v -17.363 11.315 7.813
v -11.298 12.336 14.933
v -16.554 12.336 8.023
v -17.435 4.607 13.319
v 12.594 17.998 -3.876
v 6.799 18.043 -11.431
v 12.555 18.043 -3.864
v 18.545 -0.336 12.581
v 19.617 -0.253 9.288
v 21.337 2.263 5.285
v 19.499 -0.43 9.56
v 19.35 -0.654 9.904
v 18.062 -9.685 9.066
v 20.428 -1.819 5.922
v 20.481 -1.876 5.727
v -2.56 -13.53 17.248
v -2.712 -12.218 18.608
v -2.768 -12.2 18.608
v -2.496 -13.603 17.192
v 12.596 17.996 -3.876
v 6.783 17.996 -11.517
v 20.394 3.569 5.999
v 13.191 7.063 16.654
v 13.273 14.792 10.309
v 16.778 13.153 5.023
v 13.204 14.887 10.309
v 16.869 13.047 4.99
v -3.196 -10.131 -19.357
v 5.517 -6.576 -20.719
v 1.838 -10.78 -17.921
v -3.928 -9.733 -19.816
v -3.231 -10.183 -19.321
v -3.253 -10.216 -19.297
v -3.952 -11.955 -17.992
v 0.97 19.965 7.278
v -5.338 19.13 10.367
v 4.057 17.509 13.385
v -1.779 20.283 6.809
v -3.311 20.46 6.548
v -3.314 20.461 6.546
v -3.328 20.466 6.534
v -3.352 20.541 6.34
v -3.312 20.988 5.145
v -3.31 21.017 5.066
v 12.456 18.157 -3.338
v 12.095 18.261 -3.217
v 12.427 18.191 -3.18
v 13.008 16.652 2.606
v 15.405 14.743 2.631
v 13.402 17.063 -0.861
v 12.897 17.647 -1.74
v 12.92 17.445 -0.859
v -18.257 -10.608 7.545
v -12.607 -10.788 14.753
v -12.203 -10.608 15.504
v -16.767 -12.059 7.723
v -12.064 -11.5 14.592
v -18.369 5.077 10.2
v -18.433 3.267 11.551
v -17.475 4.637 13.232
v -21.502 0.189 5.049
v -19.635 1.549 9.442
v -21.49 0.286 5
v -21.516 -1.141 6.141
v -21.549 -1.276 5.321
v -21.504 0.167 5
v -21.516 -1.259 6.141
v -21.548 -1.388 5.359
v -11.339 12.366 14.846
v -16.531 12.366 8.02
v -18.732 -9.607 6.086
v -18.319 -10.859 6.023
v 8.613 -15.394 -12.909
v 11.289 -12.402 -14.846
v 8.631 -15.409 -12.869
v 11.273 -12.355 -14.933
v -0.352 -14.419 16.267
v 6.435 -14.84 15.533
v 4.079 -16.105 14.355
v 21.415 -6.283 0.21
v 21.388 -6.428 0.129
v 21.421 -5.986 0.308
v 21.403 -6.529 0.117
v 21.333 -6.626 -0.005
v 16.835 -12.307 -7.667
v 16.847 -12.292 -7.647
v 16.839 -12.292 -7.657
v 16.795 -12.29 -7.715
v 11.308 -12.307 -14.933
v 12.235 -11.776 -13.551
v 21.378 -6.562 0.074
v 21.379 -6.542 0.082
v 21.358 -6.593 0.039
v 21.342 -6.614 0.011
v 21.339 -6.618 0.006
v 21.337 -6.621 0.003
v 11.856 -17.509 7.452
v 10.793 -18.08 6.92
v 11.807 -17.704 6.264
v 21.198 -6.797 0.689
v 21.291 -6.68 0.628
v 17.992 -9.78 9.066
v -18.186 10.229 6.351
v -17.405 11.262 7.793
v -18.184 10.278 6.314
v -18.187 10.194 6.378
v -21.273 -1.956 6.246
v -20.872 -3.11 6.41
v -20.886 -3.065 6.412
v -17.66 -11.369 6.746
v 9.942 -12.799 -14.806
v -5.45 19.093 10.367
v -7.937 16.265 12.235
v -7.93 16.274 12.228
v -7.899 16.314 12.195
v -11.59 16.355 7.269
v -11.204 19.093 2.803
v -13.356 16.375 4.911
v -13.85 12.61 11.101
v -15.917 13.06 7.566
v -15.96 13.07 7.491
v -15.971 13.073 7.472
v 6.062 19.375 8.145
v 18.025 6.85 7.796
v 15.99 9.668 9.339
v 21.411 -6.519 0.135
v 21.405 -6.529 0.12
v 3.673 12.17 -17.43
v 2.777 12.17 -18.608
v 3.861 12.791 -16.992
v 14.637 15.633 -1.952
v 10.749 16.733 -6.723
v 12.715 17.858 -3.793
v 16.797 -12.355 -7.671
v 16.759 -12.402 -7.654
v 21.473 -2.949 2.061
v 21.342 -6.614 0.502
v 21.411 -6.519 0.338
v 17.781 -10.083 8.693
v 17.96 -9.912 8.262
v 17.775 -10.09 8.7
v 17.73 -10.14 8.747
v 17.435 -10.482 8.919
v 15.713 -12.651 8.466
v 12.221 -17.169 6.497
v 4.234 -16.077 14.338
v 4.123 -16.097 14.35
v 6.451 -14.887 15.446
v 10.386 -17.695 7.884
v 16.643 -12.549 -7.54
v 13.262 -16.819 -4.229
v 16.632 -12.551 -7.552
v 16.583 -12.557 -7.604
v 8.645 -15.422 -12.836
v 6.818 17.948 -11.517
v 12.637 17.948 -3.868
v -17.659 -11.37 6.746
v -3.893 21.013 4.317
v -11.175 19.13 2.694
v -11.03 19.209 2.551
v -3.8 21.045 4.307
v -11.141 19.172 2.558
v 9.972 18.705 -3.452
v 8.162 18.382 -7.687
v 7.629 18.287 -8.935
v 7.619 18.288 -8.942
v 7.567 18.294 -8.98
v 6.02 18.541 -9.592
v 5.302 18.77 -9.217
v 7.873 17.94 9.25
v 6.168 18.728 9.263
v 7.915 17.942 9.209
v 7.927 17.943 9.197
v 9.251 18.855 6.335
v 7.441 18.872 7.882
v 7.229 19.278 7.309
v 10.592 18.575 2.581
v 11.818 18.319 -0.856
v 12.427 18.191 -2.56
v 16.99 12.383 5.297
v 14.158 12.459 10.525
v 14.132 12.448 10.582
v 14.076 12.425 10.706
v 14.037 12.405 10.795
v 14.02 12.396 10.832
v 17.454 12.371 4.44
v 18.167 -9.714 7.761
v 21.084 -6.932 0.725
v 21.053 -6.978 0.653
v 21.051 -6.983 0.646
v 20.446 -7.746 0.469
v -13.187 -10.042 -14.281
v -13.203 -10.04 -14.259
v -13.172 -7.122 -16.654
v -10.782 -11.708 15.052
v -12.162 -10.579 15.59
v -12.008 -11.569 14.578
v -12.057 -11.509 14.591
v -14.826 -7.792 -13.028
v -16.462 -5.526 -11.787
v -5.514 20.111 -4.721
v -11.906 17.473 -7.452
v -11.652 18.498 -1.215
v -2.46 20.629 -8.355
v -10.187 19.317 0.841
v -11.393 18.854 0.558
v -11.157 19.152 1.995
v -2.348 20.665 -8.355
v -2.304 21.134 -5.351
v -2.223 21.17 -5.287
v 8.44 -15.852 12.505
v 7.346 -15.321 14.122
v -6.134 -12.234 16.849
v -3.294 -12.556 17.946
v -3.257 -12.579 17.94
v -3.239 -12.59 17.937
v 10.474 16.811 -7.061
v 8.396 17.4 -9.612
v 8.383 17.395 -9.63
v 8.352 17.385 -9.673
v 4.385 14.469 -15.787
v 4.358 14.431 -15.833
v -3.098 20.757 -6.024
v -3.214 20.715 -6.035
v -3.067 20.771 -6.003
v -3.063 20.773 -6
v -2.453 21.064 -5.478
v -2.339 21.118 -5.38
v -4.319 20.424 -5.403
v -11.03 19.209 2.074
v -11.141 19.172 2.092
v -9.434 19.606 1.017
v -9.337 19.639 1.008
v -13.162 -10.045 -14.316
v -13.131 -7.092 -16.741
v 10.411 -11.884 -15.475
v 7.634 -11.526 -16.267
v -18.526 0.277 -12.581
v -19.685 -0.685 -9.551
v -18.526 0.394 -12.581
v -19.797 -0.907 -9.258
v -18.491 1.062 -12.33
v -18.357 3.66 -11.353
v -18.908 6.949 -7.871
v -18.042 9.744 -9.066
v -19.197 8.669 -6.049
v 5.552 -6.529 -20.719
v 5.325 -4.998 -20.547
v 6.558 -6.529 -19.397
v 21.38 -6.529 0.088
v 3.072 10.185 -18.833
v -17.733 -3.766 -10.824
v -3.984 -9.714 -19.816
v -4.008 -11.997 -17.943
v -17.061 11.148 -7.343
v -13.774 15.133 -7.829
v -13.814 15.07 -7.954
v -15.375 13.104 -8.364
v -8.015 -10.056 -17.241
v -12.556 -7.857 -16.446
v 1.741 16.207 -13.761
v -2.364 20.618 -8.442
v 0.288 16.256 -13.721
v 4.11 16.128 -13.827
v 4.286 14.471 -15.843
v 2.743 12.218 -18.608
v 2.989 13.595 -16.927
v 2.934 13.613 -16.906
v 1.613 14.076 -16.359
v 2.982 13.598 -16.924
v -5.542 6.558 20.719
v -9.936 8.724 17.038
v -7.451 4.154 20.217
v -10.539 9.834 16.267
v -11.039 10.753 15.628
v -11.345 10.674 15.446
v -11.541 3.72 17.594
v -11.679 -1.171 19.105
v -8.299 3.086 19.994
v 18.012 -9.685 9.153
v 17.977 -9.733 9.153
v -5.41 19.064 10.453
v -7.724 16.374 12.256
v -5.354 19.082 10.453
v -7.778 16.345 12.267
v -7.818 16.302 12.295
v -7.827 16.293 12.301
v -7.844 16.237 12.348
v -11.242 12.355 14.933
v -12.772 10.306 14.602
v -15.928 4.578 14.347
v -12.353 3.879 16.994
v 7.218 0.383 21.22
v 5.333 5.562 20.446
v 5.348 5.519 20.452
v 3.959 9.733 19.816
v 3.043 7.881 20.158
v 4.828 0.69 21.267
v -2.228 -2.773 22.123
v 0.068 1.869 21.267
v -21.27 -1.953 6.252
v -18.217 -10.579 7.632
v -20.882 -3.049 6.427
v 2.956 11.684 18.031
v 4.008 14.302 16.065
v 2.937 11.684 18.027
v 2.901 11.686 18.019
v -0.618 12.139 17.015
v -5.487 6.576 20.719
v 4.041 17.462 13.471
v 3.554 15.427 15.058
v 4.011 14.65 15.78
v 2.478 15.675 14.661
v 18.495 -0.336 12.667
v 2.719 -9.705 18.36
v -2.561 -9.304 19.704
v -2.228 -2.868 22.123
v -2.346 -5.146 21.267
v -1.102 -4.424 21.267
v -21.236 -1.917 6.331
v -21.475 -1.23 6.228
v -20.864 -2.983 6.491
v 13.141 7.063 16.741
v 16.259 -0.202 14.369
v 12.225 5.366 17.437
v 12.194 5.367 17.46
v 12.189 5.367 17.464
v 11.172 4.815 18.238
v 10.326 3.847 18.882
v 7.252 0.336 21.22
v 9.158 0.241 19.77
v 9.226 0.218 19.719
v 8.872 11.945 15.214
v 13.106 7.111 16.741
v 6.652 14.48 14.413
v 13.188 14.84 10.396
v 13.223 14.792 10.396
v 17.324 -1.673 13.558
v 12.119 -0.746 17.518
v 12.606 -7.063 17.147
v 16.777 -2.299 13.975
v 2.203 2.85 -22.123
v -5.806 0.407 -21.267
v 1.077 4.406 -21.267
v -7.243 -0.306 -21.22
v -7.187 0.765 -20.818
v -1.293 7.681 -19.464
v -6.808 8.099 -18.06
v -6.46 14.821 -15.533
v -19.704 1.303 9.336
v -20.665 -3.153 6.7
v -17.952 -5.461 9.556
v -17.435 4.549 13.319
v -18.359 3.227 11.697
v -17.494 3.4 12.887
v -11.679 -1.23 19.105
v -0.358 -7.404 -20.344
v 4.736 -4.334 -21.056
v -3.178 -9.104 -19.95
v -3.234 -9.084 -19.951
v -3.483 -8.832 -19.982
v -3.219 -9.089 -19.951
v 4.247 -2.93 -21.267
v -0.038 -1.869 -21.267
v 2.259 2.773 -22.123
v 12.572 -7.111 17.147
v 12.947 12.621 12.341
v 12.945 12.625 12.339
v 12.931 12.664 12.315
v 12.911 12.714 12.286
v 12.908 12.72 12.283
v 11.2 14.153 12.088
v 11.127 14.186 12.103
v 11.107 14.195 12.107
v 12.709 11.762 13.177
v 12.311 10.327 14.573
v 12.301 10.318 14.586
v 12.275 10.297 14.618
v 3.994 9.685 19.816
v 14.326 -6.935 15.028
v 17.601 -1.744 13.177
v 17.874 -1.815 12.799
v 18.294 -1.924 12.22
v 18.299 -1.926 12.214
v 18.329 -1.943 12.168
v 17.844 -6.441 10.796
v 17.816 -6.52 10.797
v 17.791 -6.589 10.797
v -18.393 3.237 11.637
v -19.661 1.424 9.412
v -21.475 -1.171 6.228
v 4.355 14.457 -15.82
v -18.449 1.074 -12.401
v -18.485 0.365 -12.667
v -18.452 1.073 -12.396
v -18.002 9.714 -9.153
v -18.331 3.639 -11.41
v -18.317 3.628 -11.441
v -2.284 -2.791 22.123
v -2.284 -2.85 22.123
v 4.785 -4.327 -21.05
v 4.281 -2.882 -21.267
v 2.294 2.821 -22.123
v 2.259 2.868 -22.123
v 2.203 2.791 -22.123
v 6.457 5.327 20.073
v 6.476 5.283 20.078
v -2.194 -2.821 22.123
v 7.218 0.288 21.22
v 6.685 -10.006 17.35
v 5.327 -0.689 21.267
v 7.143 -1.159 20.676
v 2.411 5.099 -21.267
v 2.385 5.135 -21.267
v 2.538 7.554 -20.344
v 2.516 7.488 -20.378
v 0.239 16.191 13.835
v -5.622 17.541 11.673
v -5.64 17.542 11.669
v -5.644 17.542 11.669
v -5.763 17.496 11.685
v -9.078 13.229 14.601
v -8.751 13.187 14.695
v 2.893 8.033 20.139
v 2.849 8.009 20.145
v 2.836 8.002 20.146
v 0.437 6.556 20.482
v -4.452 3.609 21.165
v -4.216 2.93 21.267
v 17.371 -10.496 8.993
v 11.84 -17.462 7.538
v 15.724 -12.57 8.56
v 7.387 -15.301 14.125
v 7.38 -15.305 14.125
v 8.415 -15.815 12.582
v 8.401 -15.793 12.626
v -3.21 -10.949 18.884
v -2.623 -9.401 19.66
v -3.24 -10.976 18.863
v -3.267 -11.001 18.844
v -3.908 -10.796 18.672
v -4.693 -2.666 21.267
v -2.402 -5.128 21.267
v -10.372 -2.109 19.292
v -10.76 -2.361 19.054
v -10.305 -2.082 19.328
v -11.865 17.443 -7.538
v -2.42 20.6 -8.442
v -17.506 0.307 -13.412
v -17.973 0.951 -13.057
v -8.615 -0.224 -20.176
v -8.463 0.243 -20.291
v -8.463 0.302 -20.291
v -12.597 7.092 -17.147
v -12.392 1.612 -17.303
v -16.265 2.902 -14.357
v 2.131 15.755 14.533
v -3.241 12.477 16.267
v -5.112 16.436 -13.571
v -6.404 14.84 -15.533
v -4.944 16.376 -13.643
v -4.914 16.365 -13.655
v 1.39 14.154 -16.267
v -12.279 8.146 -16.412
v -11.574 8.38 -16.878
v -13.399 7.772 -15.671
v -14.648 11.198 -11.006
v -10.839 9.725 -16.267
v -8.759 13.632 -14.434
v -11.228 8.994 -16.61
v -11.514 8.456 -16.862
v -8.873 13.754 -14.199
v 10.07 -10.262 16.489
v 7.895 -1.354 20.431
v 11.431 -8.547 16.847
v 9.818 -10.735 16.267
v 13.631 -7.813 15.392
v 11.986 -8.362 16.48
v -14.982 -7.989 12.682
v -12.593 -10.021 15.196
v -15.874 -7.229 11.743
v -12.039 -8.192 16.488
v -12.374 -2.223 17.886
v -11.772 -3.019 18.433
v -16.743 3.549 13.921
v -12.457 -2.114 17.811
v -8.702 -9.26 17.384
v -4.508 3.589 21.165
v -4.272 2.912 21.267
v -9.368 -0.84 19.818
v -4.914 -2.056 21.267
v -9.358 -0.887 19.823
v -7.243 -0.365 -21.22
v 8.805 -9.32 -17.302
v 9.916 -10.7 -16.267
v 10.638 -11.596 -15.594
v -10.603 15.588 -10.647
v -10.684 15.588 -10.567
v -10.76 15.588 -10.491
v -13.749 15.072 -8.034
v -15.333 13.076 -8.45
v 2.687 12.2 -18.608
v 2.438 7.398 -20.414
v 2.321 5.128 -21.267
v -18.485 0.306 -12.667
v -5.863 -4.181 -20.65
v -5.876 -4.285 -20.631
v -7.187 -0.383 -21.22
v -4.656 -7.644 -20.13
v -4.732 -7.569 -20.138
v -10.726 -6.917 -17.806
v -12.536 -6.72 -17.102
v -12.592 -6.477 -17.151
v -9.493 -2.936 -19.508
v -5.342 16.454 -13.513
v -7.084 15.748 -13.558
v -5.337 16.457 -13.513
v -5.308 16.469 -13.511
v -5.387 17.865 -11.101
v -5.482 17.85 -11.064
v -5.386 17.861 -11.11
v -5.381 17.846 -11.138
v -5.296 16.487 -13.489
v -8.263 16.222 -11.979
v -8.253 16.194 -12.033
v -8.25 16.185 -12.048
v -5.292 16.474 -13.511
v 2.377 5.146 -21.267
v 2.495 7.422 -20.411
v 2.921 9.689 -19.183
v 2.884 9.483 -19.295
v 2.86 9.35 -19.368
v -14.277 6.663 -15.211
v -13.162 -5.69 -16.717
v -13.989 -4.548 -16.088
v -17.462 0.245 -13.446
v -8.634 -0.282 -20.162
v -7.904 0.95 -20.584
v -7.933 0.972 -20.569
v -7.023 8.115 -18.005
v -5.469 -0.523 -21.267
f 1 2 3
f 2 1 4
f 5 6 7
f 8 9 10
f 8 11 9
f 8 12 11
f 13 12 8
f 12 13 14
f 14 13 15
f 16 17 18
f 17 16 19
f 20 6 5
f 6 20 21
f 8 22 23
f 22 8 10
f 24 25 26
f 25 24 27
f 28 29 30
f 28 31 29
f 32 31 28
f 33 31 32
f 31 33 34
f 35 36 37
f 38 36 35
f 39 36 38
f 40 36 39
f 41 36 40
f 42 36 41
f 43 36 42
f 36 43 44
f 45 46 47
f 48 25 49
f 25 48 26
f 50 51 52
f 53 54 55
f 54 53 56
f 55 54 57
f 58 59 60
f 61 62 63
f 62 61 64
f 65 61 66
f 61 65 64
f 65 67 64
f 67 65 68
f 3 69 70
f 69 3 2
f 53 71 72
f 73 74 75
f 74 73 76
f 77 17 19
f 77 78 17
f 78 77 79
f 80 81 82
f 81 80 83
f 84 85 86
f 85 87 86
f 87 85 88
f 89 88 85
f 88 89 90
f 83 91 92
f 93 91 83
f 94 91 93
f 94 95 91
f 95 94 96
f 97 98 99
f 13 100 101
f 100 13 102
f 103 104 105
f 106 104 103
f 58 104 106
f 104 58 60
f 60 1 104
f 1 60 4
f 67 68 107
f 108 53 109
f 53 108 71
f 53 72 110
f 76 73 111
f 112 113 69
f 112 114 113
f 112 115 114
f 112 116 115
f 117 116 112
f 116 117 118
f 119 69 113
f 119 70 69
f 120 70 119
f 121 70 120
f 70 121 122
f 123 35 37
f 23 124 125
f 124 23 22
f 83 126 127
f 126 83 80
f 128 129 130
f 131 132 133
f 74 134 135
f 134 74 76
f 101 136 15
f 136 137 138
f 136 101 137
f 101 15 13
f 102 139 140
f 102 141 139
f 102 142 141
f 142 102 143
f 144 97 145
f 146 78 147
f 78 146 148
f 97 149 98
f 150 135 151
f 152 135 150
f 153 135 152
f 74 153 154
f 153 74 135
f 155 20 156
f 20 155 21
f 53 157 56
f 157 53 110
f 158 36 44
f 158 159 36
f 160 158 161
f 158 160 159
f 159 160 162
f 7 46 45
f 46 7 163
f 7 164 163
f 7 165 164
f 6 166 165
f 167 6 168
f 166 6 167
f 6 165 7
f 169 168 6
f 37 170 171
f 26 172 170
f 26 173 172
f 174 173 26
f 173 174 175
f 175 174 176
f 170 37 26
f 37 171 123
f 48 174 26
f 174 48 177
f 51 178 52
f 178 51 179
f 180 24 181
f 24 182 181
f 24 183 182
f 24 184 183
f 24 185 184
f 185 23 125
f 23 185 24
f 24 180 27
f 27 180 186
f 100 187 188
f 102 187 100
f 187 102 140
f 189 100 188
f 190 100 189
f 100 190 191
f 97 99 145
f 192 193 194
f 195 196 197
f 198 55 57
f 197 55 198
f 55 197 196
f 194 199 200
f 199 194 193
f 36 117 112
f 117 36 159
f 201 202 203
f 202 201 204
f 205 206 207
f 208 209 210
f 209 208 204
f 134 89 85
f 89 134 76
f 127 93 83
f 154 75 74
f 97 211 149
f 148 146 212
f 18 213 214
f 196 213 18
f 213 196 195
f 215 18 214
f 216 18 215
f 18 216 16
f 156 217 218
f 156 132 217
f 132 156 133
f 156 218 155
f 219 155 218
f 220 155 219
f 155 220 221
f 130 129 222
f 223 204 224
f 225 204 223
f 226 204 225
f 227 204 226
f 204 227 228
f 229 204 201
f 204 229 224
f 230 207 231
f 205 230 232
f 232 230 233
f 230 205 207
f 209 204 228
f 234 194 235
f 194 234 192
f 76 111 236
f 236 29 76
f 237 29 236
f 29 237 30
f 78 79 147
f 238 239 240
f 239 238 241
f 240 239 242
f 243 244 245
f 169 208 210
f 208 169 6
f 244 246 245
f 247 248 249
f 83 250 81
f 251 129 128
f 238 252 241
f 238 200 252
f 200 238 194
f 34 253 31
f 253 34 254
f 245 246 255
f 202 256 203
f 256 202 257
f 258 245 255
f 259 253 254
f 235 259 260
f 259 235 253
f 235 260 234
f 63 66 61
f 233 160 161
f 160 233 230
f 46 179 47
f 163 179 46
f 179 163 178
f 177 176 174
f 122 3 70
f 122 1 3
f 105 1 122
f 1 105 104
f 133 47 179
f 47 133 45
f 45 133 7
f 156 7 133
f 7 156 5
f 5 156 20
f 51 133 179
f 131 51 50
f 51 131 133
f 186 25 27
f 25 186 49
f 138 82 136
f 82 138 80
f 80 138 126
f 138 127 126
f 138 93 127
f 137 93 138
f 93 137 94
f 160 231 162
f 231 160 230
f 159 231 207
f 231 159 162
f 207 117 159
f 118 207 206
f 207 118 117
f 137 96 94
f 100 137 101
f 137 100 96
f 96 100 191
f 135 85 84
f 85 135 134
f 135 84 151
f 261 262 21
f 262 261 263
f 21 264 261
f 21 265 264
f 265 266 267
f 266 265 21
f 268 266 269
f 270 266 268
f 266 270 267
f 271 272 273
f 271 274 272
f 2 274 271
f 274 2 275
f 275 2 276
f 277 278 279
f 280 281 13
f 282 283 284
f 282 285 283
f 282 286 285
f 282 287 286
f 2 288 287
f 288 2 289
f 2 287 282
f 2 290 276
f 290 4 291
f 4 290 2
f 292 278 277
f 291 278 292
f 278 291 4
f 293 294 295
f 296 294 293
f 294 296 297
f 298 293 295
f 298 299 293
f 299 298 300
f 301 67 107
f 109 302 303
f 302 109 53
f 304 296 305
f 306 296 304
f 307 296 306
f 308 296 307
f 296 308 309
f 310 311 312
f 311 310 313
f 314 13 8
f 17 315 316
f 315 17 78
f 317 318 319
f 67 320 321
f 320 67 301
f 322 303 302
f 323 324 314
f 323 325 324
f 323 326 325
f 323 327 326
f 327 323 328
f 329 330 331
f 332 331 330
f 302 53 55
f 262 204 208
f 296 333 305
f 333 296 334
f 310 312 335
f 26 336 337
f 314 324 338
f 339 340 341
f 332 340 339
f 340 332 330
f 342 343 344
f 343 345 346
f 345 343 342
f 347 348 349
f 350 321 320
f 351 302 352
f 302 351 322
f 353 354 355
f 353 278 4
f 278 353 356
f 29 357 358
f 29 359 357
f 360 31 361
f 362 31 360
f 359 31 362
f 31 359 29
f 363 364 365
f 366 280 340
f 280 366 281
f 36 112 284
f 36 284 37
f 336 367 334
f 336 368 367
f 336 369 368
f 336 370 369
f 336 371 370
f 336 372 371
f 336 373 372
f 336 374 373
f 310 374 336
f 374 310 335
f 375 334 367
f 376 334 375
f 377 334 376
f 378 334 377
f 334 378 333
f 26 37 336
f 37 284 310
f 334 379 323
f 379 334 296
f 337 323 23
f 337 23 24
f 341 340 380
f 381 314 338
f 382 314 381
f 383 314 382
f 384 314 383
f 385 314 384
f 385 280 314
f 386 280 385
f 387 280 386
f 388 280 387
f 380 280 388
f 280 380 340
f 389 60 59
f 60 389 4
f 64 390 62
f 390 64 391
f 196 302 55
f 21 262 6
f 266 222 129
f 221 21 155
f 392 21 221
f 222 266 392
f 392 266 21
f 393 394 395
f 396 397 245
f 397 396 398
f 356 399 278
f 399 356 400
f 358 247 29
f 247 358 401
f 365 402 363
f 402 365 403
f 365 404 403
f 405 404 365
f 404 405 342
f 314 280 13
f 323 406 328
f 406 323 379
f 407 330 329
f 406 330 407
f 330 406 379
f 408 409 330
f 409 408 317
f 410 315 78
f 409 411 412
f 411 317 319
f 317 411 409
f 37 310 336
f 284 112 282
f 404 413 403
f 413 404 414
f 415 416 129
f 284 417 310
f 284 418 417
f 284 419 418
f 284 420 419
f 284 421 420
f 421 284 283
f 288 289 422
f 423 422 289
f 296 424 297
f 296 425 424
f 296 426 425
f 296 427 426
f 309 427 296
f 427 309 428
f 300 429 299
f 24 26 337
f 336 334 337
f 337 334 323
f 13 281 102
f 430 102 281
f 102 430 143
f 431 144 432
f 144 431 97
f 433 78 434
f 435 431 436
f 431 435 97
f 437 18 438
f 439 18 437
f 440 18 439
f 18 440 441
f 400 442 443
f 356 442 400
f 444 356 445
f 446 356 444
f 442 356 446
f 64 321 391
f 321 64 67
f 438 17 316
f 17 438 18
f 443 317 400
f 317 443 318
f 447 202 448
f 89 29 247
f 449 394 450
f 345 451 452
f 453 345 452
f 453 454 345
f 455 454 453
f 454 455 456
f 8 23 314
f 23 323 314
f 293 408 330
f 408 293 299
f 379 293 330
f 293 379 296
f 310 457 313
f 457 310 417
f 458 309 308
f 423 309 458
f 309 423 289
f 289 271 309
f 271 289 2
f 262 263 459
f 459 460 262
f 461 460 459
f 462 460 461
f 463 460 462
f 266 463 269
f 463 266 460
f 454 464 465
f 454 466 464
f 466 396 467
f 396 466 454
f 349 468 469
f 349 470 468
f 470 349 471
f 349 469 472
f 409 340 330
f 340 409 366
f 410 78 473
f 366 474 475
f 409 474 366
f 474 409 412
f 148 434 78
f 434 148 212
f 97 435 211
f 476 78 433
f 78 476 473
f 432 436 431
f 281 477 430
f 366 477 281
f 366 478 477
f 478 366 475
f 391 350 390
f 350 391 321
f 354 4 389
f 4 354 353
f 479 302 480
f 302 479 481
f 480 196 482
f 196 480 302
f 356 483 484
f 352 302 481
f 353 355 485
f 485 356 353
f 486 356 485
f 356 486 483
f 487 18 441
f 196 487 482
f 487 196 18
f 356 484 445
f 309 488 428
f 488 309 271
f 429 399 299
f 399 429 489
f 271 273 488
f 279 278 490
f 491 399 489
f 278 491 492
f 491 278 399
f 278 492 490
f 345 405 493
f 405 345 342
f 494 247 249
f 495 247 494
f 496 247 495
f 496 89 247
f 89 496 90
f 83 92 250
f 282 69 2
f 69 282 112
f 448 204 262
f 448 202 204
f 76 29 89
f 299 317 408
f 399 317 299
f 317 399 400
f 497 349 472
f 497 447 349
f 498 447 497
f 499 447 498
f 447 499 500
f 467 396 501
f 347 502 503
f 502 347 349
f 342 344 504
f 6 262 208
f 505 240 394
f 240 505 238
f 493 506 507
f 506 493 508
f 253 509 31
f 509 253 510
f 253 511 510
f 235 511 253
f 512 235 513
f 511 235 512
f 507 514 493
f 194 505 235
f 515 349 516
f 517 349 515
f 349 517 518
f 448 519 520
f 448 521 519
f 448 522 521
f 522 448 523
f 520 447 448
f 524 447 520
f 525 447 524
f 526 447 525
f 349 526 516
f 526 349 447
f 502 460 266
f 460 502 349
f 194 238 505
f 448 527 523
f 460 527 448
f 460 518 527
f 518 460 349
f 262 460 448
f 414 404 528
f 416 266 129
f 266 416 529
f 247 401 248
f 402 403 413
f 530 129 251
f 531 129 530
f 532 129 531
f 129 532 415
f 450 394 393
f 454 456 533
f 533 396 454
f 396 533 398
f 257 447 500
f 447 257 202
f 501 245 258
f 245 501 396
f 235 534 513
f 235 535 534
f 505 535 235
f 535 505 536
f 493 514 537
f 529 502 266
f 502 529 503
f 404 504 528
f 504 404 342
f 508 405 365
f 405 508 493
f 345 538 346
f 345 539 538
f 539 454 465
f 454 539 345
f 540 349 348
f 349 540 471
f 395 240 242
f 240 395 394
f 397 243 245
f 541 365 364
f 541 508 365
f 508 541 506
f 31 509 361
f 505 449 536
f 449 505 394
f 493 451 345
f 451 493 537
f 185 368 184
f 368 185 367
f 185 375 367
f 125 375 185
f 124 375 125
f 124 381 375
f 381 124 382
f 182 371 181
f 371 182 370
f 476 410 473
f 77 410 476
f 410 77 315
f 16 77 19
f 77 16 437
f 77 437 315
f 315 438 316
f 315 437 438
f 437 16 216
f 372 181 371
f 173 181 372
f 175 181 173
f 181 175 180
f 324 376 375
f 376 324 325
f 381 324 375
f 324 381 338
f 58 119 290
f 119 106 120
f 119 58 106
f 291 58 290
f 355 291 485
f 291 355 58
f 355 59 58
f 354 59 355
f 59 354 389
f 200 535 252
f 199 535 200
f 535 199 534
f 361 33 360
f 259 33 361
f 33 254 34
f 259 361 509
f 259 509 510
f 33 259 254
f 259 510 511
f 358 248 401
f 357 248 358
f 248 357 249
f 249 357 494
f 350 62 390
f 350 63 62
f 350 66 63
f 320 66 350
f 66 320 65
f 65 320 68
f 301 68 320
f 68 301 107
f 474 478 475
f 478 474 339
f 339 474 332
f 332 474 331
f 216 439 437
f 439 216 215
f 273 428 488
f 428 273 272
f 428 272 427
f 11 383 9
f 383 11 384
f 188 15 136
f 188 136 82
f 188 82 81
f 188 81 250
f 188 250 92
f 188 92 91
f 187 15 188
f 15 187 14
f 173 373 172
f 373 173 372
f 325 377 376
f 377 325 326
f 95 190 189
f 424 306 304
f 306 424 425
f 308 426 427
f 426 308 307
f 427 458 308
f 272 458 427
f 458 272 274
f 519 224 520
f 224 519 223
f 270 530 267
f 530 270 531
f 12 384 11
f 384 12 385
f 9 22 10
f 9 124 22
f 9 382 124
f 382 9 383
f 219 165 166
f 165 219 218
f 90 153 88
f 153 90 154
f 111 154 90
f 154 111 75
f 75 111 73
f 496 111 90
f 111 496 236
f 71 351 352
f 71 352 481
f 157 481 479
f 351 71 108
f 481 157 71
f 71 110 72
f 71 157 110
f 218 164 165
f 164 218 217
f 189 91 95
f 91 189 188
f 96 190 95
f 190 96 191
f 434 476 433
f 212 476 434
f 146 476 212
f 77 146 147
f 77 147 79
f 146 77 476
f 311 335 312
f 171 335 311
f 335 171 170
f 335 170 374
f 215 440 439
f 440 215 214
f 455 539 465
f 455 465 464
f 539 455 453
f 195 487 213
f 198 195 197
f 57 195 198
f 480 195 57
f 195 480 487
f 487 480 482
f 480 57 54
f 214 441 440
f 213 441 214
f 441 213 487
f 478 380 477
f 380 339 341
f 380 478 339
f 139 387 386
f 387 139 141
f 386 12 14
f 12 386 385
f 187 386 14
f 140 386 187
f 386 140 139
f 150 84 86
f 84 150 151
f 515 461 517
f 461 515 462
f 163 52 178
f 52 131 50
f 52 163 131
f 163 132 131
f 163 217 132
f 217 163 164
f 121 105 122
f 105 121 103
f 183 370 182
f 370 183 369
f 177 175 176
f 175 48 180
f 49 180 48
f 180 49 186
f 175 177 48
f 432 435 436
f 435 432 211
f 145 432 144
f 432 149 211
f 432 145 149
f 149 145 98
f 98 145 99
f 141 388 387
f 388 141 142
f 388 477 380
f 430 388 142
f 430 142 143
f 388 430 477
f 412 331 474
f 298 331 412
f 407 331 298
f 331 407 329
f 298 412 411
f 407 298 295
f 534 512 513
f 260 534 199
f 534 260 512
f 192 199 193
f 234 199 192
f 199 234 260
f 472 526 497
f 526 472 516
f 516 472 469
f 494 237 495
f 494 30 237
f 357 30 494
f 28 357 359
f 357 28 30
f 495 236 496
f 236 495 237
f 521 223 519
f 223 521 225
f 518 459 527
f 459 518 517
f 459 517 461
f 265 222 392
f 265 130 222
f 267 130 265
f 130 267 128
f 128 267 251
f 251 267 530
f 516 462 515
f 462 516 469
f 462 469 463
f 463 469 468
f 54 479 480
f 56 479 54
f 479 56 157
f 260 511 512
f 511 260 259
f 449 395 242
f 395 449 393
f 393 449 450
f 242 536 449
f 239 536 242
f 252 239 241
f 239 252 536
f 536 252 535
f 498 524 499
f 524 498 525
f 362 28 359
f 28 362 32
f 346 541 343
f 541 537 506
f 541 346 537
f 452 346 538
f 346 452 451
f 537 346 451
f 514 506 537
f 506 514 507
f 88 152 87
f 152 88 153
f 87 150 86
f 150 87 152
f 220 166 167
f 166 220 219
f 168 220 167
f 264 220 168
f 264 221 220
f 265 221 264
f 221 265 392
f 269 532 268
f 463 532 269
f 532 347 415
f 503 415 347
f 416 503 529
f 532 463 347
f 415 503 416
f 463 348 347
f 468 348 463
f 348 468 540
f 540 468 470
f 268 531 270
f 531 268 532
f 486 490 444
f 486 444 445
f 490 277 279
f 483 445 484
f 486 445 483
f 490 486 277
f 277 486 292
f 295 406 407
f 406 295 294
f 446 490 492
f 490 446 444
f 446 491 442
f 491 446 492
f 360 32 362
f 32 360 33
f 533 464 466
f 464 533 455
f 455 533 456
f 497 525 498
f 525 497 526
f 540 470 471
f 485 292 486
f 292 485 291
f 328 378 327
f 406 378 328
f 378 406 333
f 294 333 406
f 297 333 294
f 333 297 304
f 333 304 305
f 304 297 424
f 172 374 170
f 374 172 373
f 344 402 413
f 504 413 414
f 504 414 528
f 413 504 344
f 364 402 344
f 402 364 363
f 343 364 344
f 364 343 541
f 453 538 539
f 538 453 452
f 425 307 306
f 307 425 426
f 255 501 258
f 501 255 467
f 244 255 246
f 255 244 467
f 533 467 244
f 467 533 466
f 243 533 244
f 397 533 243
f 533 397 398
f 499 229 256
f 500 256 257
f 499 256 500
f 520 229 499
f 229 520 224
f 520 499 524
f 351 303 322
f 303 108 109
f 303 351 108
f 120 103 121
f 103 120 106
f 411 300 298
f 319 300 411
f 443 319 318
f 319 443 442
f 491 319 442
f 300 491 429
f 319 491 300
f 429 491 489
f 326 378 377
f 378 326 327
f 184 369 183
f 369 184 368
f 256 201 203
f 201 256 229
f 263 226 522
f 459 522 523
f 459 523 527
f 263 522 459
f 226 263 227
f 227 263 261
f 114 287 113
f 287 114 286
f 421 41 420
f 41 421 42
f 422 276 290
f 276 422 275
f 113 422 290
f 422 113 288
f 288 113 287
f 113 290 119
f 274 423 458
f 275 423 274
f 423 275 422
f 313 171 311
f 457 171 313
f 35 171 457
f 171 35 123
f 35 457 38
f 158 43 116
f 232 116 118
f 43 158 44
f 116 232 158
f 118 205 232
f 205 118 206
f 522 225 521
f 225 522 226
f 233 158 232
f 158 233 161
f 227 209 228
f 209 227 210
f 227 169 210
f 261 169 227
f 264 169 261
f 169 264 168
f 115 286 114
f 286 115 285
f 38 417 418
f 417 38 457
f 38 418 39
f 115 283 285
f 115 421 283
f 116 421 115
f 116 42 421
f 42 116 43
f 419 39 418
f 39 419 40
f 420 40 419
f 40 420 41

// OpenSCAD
// Auto-generated OpenSCAD file

    inner_points = 10*[[-1.836699607587161, -1.2285699091430797, -0.5000000000000988], [2.146184519456955, 0.21396464522266723, -0.4999999999998816], [-2.1772358223098434, -0.2883385086557597, -0.5000000000001185], [1.8056483047342733, 1.1541960457099871, -0.4999999999999012], [-1.8366996075872162, -1.2285699091430788, 0.4999999999999012], [2.1461845194569, 0.21396464522266823, 0.5000000000001185], [-2.1772358223098984, -0.2883385086557587, 0.4999999999998816], [1.8056483047342182, 1.154196045709988, 0.5000000000000988], [-0.3153732443086741, -0.677570739321549, -2.118033988749911], [0.6248581561786458, -0.33703452459886674, -2.1180339887498594], [-0.6559094590313566, 0.2626606611657711, -2.1180339887499304], [0.2843219414559636, 0.6031968758884533, -2.118033988749879], [-0.3153732443089066, -0.6775707393215448, 2.118033988749879], [0.6248581561784134, -0.3370345245988626, 2.1180339887499304], [-0.6559094590315889, 0.26266066116577524, 2.1180339887498594], [0.2843219414557311, 0.6031968758884575, 2.118033988749911], [1.1758573260000895, -1.8583608878772635, -0.49999999999993283], [-2.061336407064101, 0.7049224467561074, -0.500000000000113], [-0.2666772283656575, 2.124523239166853, -0.5000000000000159], [1.1758573260000345, -1.8583608878772626, 0.5000000000000672], [-2.061336407064156, 0.7049224467561084, 0.499999999999887], [-0.26667722836571245, 2.124523239166854, 0.49999999999998407], [2.131136622972155, -0.6519300139659565, 1.184490416110162e-13], [-1.1060571100920356, 1.911353320667414, -6.17776737251443e-14], [1.2396012384279405, 1.809627749799762, 6.709282429360799e-14], [-1.2463045333092315, -0.4829546239886549, -1.8090169943750145], [1.2152532304564871, 0.40858076055555986, -1.8090169943748804], [-1.24630453330943, -0.48295462398865135, 1.8090169943748804], [1.2152532304562886, 0.4085807605555634, 1.8090169943750145], [0.6005101482070487, -1.7380815138430665, -1.309016994374912], [-0.6315614510598482, 1.6637076504099721, -1.309016994374983], [0.6005101482069051, -1.7380815138430639, 1.309016994374983], [-0.6315614510599918, 1.6637076504099748, 1.309016994374912], [-1.2613524297940315, -1.3488492831772787, -1.3090169943750145], [1.7813002967627651, -0.24685094353421377, -1.3090169943748486], [-1.8123515996155641, 0.17247708010111973, -1.3090169943750463], [1.2303011269412325, 1.2744754197441843, -1.3090169943748804], [-1.2613524297941754, -1.348849283177276, 1.3090169943748804], [1.7813002967626212, -0.24685094353421122, 1.3090169943750463], [-1.812351599615708, 0.17247708010112228, 1.3090169943748486], [1.2303011269410886, 1.274475419744187, 1.3090169943750145], [-0.3304211407934745, -1.543465398510173, -1.6180339887499107], [1.190905222484924, -0.9924662286886403, -1.6180339887498278], [-1.2219565253376892, 0.9180923652555457, -1.618033988749962], [0.2993698379407091, 1.469091535077078, -1.6180339887498791], [-0.3304211407936521, -1.5434653985101696, 1.6180339887498791], [1.1909052224847463, -0.9924662286886372, 1.618033988749962], [-1.2219565253378668, 0.9180923652555488, 1.6180339887498278], [0.2993698379405315, 1.4690915350770812, 1.6180339887499107], [1.7662524002779645, -1.1127456027228375, -0.8090169943748485], [-1.4709413327862264, 1.450537731910533, -0.8090169943750288], [0.6642540606348998, 1.929907123833959, -0.809016994374912], [1.7662524002778757, -1.112745602722836, 0.8090169943750464], [-1.4709413327863152, 1.4505377319105348, 0.8090169943748661], [0.664254060634811, 1.9299071238339605, 0.8090169943749829]];

    outer_points = 10*[[1.12576446959325, -1.2306993530072232, -1.4846216484373451], [-1.1423570636659763, 1.9034473733016377, 0.24078291813028324], [0.5369108131957494, -1.9034473733016377, -1.0366691146380147], [-1.731210720063477, 1.2306993530072232, 0.6887354519296138], [1.731210720063477, -1.2306993530072232, -0.6887354519296138], [-0.5369108131957494, 1.9034473733016377, 1.0366691146380147], [1.1423570636659763, -1.9034473733016377, -0.24078291813028324], [-1.12576446959325, 1.2306993530072232, 1.4846216484373451], [-0.7202134771182586, -0.03356182928645268, -2.113346665479179], [-1.2556443401984863, 0.7063098495808671, -1.7060338990806576], [-1.3090671335157593, -0.7063098495808671, -1.6653941316798484], [-1.8444979965959871, 0.03356182928645268, -1.2580813652813272], [1.8444979965959871, -0.03356182928645268, 1.2580813652813272], [1.3090671335157593, 0.7063098495808671, 1.6653941316798484], [1.2556443401984863, -0.7063098495808671, 1.7060338990806576], [0.7202134771182586, 0.03356182928645268, 2.113346665479179], [0.6767735018743313, 1.7948390122814335, -1.1430654069882231], [-0.22922787002565134, -2.174290821629481, -0.4538523813764673], [-1.8176506154247858, -1.0549673334141139, 0.7544919768790133], [1.2822197523445582, 1.7948390122814335, -0.3471792104804918], [0.37621838044457556, -2.174290821629481, 0.34203381513126413], [-1.2122043649545589, -1.0549673334141139, 1.5503781733867446], [-0.1977840872008227, 2.2190790322251956, 0.1504582370241563], [-1.1037854591008052, -1.7500508016857188, 0.8396712626359121], [-1.739422974049132, 0.4578018492302146, 1.32321319585744], [-0.394374457196368, -0.9685046012940453, -1.9729509883124625], [-1.796150655366095, 0.9685046012940453, -0.9065923218293875], [1.796150655366095, -0.9685046012940453, 0.9065923218293875], [0.394374457196368, 0.9685046012940453, 1.9729509883124625], [0.27270684057678685, 1.2170126016446976, -1.8521823031333664], [-1.8577857026690232, -1.2170126016446976, -0.23147481050075225], [1.8577857026690232, 1.2170126016446976, 0.23147481050075225], [-0.27270684057678685, -1.2170126016446976, 1.8521823031333664], [0.5501985192687854, -0.6528729423704873, -2.0632756694185894], [-1.1824921509102135, 1.741402105071054, -0.7451838692494821], [-0.4025867111820227, -1.741402105071054, -1.3384732443846366], [-2.1352773813610217, 0.6528729423704873, -0.020381444215529232], [2.1352773813610217, -0.6528729423704873, 0.020381444215529232], [0.4025867111820227, 1.741402105071054, 1.3384732443846366], [1.1824921509102135, -1.741402105071054, 0.7451838692494821], [-0.5501985192687854, 0.6528729423704873, 2.0632756694185894], [0.22435949934689503, 0.28206982963710514, -2.203671346585306], [-0.6419858357426045, 1.4792073533578758, -1.5446254465007523], [-1.317279387501414, -1.4792073533578758, -1.0309163877520224], [-2.1836247225909133, -0.28206982963710514, -0.3718704876674688], [2.1836247225909133, 0.28206982963710514, 0.3718704876674688], [1.317279387501414, 1.4792073533578758, 1.0309163877520224], [0.6419858357426045, -1.4792073533578758, 1.5446254465007523], [-0.22435949934689503, -0.28206982963710514, 2.203671346585306], [-0.2379191744450599, 2.057033763994612, -0.8355085503556091], [-1.1439205463450426, -1.9120960699163028, -0.1462955247438532], [-2.1434896353466764, -0.1200245614065214, 0.6140962997122967], [0.7417134371769494, 2.057033763994612, 0.45226236677077825], [-0.16428793472303332, -1.9120960699163028, 1.1414753923825343], [-1.1638570237246673, -0.1200245614065214, 1.901867216838684]];

    // Convex hull for inner set (I)
    module inner_hull() {
        hull() {
            for (p = inner_points) {
                translate(p) sphere(r=0.1);
            }
        }
    }

    // Convex hull for outer set (O) minus inner hull (O \ I)
    module outer_minus_inner() {
        difference() {
            hull() {
                for (p = outer_points) {
                    translate(p) sphere(r=0.1);
                }
            }
            inner_hull(); // Subtract inner hull
        }
    }

    // Convex hull for outer set (O) minus all translated inner hulls
    module outer_minus_AllTranslationInner() {
        difference() {
            hull() {
                for (p = outer_points) {
                    translate(p) sphere(r=0.1);
                }
            }
            hull() {
                translate([0,0,50]) inner_hull();
                translate([0,0,-50]) inner_hull();
            }; // Subtract translated inner hulls
        }
    }

    // Difference between outer_minus_inner and outer_minus_AllTranslationInner
    module outer_minus_inner_diff() {
        difference() {
            // Outer minus inner
            difference() {
                hull() {
                    for (p = outer_points) {
                        translate(p) sphere(r=0.1);
                    }
                }
                inner_hull();
            }

            // Subtract Outer minus AllTranslationInner
            difference() {
                hull() {
                    for (p = outer_points) {
                        translate(p) sphere(r=0.1);
                    }
                }
                hull() {
                    translate([0,0,50]) inner_hull();
                    translate([0,0,-50]) inner_hull();
                };
            }
        }
    }

    // Rendering all with colors applied
    color([1, 1, 0, 1]) outer_minus_inner_diff(); // Opaque yellow
    
